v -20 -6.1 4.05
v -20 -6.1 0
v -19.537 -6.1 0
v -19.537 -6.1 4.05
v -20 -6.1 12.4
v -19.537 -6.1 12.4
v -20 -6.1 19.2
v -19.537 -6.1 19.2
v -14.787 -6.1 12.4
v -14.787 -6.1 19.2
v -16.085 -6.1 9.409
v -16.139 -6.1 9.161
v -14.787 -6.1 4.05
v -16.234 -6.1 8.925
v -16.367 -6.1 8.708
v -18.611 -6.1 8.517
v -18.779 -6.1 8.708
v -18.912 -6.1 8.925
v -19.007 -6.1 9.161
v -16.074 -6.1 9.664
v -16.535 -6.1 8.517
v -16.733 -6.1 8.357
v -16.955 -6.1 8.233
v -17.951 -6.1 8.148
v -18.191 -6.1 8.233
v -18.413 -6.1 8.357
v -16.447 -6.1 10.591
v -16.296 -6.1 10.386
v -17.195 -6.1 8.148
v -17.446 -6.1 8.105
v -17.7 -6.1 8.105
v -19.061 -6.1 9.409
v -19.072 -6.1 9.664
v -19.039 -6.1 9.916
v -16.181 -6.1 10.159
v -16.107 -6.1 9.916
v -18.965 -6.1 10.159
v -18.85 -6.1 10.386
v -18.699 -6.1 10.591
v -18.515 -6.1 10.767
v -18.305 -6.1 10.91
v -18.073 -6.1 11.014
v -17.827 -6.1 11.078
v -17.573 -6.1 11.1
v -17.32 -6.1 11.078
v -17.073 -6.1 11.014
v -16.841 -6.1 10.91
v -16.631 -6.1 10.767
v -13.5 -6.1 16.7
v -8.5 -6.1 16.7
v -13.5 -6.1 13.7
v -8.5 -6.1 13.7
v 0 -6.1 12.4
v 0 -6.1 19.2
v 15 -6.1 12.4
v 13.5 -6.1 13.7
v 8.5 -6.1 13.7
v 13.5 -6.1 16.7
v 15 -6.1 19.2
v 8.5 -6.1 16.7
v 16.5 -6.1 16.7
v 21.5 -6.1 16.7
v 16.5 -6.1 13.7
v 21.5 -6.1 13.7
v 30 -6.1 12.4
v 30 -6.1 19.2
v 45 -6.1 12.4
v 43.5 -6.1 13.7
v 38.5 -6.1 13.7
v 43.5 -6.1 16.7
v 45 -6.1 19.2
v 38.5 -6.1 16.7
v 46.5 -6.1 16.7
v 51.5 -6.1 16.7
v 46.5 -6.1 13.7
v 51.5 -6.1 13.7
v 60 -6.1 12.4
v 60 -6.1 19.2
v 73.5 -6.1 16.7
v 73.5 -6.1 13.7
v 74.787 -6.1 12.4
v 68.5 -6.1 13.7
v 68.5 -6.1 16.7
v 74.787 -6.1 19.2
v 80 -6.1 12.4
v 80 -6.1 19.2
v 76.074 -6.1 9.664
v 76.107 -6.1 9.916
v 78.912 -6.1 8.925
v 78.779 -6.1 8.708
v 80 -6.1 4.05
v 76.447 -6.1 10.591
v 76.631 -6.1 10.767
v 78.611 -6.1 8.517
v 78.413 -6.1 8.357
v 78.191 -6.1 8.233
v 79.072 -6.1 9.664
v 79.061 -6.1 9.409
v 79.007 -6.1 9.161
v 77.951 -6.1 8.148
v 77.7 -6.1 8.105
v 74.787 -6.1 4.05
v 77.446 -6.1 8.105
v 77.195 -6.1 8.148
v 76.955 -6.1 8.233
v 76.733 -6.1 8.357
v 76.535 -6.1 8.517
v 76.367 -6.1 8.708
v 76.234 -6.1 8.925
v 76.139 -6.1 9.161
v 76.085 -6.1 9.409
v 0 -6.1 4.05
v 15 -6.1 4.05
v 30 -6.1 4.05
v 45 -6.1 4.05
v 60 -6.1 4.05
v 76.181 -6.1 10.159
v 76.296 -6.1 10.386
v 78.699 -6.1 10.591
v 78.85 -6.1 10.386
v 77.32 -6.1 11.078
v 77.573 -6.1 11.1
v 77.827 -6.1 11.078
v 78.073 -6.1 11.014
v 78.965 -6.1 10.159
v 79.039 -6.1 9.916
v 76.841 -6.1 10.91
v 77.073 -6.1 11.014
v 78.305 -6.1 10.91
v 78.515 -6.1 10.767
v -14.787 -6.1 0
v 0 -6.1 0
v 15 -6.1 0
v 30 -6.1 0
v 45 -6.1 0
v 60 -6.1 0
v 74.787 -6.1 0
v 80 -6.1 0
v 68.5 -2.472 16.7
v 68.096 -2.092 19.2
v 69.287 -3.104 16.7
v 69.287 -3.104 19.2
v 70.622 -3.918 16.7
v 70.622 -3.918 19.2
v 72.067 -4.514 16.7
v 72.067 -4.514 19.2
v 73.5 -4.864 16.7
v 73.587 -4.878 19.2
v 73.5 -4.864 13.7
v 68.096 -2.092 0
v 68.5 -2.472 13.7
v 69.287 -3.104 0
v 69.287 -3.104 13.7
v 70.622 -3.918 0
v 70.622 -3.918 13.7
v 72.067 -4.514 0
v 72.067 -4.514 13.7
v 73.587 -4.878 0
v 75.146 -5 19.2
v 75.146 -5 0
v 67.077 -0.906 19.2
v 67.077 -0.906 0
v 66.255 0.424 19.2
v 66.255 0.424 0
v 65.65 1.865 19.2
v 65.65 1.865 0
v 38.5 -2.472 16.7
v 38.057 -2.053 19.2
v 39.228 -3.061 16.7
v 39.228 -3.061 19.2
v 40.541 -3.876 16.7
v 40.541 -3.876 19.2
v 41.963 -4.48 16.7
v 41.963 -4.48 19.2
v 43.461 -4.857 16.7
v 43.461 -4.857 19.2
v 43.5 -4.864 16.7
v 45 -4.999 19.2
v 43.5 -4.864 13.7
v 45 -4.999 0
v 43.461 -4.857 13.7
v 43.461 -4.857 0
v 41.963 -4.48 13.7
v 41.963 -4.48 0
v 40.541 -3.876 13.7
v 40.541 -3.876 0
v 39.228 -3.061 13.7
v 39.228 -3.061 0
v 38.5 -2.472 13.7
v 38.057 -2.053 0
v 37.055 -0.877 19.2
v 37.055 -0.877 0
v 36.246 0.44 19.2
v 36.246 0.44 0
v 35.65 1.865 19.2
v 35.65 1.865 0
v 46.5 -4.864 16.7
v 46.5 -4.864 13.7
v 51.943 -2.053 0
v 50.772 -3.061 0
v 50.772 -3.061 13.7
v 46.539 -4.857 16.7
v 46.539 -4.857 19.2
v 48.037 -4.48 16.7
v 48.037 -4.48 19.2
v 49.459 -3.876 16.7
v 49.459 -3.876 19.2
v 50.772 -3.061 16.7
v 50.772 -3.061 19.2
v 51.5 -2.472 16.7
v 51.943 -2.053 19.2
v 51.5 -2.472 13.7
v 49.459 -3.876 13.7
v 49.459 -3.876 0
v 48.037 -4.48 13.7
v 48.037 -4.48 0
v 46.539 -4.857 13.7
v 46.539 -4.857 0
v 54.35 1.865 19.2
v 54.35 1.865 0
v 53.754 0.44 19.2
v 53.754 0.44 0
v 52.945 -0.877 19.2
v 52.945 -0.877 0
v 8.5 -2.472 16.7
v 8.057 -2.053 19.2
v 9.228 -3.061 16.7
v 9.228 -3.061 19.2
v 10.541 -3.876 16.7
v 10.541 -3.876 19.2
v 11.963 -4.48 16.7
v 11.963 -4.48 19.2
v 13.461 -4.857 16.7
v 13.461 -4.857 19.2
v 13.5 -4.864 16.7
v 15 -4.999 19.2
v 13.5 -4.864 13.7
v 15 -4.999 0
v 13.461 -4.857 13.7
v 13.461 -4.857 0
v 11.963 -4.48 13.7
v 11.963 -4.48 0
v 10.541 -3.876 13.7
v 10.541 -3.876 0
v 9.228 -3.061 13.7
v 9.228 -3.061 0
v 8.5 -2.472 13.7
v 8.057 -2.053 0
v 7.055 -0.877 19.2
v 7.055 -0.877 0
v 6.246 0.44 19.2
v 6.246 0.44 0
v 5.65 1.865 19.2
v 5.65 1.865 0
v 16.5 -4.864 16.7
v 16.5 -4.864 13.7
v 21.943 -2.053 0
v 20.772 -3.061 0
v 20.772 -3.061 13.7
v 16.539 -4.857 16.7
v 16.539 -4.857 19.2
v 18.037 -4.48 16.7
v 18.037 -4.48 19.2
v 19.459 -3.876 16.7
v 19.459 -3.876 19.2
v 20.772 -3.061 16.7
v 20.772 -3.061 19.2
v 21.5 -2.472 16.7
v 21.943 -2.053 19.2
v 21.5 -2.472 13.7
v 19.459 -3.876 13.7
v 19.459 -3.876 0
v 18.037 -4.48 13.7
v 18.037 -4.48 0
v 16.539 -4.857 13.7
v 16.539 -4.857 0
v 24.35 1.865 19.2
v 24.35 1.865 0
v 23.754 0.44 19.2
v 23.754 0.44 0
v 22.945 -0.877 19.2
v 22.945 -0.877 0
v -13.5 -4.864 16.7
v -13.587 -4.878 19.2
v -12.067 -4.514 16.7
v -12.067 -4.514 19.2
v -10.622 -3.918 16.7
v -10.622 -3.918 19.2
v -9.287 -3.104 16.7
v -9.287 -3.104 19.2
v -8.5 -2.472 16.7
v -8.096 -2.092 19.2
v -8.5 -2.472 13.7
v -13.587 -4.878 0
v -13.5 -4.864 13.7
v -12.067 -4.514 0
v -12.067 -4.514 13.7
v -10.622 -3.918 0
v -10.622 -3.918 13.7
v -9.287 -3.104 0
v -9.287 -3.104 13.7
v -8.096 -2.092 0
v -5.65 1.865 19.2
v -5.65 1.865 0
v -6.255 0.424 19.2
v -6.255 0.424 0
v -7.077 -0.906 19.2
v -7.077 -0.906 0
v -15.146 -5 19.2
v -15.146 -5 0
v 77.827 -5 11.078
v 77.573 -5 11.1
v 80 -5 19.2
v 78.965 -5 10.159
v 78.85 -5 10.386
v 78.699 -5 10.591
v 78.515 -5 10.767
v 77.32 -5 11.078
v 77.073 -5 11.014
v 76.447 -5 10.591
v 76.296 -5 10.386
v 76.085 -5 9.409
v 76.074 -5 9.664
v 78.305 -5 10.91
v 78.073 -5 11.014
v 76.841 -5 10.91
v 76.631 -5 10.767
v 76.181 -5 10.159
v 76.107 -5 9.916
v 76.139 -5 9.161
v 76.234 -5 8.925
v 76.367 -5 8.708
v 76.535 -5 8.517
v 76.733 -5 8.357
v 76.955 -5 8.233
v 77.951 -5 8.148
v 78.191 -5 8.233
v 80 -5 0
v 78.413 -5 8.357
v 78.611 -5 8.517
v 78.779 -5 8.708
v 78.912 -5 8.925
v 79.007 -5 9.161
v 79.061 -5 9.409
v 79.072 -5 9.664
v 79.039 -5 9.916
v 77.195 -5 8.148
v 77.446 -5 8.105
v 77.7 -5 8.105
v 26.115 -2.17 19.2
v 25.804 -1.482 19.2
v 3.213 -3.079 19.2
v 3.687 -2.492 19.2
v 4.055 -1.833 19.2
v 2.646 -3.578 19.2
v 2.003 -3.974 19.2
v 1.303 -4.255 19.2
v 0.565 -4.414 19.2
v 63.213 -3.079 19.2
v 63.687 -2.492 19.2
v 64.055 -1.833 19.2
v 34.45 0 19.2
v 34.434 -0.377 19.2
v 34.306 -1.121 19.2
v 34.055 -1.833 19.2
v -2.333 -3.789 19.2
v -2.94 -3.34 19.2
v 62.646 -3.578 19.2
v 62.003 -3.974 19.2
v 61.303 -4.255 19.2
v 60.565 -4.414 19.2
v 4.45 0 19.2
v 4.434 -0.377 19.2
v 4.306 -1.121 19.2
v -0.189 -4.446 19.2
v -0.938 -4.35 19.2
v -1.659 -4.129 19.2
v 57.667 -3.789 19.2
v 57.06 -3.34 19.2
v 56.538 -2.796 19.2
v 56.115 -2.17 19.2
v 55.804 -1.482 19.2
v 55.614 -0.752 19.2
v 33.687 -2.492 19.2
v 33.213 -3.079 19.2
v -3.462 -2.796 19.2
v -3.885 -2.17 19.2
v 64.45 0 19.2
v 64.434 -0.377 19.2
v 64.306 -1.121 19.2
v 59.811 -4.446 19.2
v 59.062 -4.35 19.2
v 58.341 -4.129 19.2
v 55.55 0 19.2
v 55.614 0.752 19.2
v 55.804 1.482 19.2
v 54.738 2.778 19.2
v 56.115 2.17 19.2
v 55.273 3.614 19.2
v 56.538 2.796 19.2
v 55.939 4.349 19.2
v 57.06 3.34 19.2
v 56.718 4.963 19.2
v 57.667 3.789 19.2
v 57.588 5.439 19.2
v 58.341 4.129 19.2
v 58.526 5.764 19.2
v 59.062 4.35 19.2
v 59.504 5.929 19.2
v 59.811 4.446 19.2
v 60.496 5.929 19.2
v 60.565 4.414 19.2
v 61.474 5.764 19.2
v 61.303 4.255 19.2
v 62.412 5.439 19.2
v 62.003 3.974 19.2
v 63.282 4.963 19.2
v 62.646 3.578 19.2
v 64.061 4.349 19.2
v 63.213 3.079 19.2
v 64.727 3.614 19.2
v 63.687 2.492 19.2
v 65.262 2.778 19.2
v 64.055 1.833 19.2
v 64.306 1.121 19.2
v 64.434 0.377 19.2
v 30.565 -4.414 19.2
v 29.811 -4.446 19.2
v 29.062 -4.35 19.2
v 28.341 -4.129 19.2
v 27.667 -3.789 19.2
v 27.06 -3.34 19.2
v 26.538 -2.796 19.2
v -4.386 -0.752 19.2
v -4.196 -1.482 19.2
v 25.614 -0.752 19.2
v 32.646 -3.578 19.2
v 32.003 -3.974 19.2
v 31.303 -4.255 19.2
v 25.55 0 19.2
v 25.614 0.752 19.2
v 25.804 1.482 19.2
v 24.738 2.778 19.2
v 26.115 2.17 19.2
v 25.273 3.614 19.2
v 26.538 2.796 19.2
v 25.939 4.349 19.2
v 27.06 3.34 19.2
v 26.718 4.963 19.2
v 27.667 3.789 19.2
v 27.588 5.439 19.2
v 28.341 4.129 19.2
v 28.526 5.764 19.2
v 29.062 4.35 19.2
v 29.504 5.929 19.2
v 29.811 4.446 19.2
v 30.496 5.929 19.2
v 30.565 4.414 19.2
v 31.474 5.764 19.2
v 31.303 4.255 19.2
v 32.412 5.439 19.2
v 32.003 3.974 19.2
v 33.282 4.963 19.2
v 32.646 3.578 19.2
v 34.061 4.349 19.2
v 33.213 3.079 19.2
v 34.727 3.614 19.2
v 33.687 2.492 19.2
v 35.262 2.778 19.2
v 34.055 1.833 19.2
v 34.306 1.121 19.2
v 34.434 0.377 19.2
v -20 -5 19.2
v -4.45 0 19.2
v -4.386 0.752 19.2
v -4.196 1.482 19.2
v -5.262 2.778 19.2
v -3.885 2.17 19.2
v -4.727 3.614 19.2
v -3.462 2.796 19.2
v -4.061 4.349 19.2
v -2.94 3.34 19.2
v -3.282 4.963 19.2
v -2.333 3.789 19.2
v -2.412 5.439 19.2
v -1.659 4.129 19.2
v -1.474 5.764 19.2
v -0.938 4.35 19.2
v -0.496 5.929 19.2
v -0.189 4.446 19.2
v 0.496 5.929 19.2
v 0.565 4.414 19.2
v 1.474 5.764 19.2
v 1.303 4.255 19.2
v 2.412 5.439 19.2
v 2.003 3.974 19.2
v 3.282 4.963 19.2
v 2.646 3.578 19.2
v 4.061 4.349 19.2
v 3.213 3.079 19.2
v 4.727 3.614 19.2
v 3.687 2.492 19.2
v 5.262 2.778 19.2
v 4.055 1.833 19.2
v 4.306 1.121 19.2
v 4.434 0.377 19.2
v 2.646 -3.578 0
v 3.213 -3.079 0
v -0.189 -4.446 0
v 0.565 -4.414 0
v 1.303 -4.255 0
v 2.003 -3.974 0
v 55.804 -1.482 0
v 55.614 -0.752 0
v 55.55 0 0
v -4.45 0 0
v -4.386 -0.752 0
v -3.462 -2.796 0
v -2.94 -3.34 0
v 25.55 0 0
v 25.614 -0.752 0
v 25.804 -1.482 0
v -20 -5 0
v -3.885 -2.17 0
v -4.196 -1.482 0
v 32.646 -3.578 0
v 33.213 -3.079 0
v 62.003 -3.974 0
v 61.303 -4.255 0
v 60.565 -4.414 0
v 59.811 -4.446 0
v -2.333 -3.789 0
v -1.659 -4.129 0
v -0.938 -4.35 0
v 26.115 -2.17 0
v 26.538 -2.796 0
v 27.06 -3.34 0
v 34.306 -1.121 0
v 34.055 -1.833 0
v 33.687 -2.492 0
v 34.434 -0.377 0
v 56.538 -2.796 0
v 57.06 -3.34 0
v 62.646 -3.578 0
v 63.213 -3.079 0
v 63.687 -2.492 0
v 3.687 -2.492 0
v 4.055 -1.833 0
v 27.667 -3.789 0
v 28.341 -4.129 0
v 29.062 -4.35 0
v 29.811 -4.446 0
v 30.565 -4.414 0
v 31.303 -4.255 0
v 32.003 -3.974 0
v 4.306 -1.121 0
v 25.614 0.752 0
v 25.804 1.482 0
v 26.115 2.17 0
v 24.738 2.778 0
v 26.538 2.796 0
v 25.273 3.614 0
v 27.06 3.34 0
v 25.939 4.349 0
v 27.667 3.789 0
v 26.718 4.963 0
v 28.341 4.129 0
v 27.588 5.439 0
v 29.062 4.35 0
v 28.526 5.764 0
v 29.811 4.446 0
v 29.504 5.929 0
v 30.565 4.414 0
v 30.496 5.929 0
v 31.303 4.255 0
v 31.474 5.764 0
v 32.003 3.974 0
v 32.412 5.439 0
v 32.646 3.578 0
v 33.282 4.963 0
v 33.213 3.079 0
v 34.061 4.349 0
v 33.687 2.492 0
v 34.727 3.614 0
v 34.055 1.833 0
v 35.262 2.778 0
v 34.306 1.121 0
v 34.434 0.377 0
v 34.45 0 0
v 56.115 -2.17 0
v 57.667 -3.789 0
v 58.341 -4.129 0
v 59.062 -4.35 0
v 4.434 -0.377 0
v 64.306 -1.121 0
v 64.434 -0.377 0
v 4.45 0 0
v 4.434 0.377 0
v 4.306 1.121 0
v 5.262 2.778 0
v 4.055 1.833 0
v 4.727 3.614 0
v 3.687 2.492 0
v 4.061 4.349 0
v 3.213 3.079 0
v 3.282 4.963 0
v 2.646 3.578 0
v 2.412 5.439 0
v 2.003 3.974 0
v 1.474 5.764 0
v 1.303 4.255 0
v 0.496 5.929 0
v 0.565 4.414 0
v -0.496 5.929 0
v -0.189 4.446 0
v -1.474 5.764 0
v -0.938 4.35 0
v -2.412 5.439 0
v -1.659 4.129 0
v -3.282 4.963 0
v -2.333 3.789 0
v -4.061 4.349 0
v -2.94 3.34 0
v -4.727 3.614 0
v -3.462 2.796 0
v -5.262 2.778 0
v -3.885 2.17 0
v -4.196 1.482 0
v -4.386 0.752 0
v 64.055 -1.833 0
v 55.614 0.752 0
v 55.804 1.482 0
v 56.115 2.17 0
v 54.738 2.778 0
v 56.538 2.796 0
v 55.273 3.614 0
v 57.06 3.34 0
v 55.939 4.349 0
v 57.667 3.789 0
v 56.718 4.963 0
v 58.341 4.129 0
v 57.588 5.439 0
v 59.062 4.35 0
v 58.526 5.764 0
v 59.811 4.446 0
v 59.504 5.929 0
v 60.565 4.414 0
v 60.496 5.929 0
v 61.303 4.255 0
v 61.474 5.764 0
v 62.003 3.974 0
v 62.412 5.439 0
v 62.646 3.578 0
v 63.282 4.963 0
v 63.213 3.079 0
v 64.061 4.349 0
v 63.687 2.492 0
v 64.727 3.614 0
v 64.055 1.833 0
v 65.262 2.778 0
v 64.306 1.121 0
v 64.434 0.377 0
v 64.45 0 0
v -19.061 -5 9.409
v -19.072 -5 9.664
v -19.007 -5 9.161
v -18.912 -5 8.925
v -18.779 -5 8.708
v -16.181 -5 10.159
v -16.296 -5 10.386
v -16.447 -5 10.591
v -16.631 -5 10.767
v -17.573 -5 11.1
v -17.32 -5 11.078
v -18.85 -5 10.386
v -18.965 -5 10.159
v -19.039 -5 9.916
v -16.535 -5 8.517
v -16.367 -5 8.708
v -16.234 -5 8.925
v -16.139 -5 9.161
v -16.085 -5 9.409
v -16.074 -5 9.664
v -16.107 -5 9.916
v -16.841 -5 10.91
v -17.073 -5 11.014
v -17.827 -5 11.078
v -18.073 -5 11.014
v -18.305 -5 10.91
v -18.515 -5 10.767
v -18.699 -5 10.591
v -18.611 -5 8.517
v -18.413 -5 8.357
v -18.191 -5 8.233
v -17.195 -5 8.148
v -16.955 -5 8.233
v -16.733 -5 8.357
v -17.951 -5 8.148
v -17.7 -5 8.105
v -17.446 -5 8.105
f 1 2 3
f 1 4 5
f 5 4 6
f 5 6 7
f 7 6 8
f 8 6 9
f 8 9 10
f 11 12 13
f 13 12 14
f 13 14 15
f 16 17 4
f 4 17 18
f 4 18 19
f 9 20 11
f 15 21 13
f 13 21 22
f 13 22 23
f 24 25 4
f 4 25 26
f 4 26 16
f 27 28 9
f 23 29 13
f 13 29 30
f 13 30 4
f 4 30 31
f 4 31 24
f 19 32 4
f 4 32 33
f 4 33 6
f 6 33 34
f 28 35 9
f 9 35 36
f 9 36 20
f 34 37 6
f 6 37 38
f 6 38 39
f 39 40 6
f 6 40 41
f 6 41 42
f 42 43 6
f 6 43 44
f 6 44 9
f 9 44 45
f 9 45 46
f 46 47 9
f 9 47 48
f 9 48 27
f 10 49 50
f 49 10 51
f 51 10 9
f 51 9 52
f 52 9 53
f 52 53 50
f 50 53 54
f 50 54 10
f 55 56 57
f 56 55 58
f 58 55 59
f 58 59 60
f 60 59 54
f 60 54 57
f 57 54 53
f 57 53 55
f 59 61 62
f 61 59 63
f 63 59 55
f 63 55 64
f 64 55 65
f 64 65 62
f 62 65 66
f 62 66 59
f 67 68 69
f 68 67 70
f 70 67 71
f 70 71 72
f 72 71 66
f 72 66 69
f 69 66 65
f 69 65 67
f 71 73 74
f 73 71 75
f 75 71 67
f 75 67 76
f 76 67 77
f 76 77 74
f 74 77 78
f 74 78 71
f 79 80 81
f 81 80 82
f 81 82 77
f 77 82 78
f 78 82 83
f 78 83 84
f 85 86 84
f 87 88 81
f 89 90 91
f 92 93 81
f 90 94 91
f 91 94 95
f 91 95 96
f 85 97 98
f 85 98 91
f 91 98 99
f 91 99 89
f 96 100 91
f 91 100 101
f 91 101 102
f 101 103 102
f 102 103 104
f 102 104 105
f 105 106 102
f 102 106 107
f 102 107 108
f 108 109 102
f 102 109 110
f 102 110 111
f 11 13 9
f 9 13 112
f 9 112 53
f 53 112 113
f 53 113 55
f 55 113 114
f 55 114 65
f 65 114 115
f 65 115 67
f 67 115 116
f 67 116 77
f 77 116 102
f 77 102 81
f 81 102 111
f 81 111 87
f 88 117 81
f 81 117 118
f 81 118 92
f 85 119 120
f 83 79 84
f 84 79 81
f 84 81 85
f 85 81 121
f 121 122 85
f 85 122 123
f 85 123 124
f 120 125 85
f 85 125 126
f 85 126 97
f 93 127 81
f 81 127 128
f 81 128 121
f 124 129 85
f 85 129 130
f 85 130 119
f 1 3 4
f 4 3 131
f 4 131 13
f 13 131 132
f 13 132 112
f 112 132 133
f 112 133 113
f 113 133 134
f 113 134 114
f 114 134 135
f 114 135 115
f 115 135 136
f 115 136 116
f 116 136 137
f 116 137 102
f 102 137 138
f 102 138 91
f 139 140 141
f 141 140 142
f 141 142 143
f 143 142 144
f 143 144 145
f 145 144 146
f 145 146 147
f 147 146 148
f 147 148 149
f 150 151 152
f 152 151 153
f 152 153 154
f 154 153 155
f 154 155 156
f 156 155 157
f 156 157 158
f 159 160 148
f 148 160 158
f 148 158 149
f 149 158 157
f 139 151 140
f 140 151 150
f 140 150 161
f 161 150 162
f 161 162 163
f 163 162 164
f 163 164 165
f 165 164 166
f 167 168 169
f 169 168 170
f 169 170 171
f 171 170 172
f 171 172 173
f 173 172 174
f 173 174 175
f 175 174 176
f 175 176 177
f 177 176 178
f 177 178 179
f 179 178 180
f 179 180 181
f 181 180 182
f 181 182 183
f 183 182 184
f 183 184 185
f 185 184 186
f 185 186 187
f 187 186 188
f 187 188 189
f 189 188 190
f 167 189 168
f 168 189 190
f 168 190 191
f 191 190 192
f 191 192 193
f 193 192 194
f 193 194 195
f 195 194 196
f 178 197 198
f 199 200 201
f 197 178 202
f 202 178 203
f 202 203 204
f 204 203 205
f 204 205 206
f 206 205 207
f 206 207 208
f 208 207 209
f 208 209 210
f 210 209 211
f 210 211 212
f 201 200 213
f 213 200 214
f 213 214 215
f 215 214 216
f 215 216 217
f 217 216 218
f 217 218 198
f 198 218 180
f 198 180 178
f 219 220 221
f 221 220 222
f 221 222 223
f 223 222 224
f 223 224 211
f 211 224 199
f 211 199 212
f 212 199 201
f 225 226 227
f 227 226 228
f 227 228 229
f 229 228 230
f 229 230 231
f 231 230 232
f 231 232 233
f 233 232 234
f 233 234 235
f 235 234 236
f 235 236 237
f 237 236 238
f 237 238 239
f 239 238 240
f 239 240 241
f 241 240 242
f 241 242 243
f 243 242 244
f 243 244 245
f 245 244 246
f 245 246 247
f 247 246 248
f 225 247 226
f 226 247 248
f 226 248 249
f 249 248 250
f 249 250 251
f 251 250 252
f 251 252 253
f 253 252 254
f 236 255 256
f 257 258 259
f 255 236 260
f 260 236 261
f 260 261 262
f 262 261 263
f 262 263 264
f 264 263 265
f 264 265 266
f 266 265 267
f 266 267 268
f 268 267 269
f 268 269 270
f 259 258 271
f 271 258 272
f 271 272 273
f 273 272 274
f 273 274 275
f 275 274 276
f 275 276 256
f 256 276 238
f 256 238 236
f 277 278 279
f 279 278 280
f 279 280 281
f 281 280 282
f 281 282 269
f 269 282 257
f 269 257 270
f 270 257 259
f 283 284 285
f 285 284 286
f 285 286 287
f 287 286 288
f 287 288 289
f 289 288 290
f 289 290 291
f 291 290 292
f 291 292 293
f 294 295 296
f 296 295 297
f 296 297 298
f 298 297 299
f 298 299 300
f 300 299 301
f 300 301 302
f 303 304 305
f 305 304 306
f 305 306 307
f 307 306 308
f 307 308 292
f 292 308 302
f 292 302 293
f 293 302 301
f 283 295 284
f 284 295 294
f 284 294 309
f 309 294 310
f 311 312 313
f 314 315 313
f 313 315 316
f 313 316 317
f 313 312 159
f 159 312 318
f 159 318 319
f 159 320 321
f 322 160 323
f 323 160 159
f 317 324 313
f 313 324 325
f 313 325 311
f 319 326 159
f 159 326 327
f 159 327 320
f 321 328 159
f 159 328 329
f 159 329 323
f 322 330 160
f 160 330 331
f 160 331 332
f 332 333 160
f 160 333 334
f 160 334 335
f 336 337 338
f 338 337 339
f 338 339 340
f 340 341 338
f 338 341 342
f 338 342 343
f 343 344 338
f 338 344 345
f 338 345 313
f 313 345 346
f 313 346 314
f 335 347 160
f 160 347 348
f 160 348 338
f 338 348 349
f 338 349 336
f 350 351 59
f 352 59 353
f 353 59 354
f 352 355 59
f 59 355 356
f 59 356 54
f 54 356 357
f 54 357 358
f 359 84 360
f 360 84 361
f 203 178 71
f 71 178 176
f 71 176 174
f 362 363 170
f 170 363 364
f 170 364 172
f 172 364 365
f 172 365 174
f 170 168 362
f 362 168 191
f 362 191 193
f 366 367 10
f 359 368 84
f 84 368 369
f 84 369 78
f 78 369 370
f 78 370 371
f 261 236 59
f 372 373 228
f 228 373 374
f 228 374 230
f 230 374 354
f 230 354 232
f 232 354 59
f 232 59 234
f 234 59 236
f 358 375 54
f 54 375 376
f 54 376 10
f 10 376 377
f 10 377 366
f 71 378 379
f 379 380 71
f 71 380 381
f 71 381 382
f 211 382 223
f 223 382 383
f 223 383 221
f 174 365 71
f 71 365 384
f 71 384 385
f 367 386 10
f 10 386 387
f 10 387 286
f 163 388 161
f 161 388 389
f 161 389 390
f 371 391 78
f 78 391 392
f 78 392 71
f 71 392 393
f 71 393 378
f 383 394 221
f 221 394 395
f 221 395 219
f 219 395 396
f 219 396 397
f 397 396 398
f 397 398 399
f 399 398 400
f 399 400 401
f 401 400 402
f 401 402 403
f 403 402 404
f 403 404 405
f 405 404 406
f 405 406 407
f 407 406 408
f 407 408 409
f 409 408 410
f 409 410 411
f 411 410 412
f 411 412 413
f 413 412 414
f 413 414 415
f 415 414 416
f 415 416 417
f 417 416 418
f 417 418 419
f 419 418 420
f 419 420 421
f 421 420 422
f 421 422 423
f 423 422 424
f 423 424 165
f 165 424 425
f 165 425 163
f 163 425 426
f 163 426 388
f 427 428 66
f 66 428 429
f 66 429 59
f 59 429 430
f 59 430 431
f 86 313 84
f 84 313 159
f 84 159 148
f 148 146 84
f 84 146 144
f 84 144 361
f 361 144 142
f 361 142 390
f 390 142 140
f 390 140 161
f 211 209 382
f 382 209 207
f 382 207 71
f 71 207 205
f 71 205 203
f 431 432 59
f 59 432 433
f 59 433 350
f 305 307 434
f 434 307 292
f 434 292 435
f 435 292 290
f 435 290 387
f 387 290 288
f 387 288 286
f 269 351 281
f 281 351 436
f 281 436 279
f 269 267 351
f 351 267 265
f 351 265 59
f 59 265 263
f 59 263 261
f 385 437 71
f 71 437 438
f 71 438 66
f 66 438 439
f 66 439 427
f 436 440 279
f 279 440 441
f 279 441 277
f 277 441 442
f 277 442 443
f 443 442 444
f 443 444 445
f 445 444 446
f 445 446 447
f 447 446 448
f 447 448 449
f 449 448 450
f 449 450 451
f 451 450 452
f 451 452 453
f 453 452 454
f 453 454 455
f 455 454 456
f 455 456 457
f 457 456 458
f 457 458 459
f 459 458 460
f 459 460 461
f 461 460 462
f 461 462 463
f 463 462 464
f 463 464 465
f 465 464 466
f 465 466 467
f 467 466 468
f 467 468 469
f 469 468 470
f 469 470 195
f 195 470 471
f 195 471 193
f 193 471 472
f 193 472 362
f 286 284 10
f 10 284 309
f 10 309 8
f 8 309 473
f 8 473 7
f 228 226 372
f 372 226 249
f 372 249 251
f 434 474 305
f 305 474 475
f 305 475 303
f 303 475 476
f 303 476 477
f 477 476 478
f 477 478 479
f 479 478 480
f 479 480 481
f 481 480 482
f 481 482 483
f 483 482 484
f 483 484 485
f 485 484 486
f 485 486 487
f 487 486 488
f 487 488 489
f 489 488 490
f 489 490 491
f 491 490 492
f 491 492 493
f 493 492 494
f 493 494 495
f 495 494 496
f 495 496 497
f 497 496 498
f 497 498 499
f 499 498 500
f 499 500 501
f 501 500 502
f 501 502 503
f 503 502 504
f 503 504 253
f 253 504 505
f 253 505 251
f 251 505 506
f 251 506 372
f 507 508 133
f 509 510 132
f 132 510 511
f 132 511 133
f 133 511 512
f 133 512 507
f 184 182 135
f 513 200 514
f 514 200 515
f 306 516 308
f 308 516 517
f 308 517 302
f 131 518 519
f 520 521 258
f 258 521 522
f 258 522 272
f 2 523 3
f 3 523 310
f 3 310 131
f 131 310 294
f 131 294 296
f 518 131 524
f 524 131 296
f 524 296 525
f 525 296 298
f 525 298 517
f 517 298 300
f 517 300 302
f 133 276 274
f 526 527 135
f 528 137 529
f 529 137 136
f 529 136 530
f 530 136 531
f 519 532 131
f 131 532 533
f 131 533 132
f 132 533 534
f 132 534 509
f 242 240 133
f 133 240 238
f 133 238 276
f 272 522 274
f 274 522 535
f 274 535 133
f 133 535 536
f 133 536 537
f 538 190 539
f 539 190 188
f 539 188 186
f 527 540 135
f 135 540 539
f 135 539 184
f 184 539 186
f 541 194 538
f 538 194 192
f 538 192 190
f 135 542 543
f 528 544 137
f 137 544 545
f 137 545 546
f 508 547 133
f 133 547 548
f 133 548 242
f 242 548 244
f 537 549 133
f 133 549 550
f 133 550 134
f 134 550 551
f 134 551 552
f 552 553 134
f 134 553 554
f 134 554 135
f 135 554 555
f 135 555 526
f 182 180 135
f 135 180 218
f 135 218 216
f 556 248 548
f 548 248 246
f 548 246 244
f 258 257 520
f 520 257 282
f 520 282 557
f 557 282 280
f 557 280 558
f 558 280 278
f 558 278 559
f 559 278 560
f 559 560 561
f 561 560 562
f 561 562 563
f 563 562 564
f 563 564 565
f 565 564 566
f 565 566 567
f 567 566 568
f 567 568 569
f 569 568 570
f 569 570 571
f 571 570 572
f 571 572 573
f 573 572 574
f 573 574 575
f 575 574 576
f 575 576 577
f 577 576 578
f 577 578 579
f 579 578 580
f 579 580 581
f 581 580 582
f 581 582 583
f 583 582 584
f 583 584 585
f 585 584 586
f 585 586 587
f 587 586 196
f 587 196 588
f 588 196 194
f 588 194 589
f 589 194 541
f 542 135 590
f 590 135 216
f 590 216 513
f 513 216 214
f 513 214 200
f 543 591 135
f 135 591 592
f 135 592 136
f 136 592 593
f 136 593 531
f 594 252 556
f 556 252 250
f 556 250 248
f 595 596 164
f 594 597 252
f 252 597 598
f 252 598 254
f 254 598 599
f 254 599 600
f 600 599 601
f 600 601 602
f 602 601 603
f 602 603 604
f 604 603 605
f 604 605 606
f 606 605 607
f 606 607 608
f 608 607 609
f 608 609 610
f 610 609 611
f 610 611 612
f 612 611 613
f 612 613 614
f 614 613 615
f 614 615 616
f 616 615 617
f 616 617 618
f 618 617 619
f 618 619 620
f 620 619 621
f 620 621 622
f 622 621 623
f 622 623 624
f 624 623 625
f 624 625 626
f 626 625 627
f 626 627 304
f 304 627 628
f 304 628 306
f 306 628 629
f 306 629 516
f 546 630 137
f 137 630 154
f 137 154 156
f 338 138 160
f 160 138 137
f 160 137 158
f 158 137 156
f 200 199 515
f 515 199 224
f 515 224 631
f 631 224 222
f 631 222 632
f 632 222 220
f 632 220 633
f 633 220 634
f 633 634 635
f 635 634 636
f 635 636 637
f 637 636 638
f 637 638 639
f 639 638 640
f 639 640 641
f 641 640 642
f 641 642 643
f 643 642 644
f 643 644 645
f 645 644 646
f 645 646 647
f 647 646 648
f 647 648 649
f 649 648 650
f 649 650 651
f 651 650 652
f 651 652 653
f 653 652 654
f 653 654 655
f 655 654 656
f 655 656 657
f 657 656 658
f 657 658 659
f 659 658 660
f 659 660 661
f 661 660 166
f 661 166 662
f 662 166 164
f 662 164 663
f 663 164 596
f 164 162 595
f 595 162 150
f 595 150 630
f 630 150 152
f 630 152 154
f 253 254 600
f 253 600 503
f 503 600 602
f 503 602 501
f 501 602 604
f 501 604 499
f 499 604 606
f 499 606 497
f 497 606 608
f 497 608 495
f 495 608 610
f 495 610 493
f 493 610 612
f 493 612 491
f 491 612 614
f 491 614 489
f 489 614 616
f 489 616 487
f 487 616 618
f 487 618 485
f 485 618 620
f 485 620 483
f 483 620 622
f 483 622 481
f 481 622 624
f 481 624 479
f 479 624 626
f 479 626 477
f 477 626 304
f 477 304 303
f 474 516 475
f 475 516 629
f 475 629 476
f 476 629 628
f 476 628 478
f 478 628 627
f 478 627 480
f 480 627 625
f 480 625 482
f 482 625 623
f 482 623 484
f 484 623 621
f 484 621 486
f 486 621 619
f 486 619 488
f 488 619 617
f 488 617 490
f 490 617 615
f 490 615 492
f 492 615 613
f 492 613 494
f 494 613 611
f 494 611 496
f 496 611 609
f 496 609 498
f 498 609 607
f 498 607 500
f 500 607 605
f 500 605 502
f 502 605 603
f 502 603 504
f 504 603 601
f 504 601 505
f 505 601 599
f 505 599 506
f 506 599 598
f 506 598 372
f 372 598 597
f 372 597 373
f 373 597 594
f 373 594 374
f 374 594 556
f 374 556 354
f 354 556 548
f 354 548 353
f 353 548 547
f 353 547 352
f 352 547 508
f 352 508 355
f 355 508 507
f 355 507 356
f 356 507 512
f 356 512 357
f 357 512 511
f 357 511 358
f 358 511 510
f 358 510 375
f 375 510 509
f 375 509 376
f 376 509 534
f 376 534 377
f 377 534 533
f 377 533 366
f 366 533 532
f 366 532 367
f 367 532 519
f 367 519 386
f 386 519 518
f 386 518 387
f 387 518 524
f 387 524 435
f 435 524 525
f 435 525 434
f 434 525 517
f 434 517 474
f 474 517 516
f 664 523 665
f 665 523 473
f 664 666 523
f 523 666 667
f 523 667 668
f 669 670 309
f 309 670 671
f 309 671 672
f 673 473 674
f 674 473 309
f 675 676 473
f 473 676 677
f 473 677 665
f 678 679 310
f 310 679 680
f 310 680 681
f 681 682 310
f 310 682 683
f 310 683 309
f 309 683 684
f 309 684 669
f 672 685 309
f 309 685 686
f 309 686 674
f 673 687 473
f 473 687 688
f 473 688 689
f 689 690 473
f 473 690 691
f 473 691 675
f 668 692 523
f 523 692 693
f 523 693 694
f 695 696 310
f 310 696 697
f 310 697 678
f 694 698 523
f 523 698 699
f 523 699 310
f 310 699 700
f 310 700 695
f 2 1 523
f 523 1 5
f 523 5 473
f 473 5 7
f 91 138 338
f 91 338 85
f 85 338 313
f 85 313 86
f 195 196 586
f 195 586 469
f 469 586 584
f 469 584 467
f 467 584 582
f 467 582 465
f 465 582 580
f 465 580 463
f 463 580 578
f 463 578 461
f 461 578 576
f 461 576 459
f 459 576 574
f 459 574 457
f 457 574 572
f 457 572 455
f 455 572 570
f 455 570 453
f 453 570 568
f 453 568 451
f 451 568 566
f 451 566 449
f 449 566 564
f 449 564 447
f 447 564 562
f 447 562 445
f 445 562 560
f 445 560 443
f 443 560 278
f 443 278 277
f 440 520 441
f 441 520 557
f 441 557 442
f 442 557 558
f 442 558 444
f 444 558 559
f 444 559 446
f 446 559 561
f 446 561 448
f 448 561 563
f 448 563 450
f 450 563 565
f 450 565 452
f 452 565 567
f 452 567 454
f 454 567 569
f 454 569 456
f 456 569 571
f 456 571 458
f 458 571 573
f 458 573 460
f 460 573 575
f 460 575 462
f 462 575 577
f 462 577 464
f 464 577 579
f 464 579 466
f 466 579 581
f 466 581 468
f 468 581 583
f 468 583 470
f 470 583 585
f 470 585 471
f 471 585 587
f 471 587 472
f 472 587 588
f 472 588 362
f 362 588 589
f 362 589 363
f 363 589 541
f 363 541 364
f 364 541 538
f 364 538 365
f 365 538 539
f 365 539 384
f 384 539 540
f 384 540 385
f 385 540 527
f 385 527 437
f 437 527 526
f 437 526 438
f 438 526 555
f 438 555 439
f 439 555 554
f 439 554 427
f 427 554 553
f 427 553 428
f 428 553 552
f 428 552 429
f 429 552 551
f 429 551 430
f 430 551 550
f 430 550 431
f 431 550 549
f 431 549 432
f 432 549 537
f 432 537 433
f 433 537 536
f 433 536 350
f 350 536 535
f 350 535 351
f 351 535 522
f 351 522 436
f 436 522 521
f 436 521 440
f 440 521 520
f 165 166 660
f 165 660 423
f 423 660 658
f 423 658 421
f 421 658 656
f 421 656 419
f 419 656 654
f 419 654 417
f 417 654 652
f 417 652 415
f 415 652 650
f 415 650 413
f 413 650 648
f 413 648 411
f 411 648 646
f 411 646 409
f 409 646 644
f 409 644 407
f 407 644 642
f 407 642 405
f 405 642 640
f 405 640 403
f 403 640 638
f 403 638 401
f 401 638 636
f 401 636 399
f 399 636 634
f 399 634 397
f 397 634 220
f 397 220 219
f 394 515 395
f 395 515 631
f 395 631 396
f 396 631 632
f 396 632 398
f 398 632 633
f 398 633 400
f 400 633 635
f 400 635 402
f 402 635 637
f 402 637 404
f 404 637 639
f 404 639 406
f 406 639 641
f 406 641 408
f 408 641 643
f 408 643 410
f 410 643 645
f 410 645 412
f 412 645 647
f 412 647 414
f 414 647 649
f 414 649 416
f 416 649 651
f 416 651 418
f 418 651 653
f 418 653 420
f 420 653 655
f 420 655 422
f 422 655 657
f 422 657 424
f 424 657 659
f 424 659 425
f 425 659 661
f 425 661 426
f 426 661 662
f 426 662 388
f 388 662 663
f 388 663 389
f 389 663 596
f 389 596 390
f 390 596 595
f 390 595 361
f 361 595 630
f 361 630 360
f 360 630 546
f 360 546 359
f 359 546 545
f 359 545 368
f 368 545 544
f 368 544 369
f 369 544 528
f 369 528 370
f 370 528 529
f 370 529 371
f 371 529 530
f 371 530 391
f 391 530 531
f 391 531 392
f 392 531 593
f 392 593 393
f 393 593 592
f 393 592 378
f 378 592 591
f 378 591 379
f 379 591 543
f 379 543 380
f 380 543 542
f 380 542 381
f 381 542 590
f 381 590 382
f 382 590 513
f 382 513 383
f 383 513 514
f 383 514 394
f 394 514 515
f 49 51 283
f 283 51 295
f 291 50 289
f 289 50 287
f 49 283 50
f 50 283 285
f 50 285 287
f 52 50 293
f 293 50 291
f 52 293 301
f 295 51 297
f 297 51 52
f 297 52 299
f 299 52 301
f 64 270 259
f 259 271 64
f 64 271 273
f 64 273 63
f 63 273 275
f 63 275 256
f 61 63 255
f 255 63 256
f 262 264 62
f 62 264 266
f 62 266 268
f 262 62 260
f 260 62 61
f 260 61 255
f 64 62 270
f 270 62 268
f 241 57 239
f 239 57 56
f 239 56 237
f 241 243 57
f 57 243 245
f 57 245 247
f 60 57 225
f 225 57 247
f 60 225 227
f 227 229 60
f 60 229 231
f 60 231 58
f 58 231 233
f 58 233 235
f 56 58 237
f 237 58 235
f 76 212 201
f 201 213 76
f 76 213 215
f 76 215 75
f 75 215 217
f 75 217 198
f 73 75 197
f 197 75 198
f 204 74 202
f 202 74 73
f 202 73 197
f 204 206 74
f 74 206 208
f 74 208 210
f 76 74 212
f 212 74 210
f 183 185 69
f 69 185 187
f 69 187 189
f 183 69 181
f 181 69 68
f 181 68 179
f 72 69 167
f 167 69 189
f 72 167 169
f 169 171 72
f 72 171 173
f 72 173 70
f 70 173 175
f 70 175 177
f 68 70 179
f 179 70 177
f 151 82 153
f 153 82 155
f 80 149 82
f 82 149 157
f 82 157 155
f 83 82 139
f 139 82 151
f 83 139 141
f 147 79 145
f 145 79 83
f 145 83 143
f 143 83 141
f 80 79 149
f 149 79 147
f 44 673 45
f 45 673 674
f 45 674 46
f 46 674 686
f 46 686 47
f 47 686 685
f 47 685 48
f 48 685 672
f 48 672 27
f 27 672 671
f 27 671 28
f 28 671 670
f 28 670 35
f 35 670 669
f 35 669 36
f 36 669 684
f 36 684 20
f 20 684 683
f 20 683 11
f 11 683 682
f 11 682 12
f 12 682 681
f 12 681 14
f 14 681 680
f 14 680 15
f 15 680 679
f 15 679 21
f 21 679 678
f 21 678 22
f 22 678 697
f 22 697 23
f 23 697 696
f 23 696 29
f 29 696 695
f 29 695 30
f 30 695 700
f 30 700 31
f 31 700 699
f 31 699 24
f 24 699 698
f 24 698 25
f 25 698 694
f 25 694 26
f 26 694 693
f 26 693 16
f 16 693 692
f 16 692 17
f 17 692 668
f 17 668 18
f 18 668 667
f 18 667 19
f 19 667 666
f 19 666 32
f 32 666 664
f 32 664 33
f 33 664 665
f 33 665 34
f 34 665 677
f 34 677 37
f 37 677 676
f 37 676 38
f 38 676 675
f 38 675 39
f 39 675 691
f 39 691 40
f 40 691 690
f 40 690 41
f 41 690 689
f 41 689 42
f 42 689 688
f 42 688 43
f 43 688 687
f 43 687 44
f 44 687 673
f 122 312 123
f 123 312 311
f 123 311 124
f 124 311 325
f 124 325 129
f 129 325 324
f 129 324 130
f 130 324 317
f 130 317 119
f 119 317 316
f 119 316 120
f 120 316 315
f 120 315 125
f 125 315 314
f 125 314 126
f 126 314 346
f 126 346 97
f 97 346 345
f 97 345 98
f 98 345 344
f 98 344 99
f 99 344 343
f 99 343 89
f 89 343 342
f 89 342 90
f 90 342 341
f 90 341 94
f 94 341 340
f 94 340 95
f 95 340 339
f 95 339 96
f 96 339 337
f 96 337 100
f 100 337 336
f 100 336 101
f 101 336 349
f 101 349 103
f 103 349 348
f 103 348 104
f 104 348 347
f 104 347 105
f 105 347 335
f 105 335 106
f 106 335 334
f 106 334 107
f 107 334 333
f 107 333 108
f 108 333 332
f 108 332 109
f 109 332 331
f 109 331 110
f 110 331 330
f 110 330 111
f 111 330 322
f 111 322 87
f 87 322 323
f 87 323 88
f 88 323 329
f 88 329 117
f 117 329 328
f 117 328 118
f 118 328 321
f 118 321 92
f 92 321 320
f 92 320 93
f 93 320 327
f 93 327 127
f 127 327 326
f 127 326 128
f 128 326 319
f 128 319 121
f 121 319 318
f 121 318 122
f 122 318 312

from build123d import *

# Parameters (mm, degrees)
ESQUISSE1_R                  = 5.95
ESQUISSE1_R_2                = 4.45
EXTRU_MINCE1_DEPTH           = 19.2
EXTRU_MINCE1_2_DEPTH         = 19.2
EXTRU_MINCE1_3_DEPTH         = 19.2
ESQUISSE3_W                  = 20
ESQUISSE3_H                  = 19.2
ESQUISSE3_W_2                = 40
BOSS_EXTRU_1_DEPTH           = 1.1
CONG_1_R                     = 10
ENL_V_MAT_EXTRU_1_DEPTH      = 83.99724393
ENL_V_MAT_EXTRU_1_DEPTH_BACK = 83.99724393
ESQUISSE4_W                  = 5
ESQUISSE4_H                  = 3
ESQUISSE5_R                  = 1.5
ENL_V_MAT_EXTRU_4_DEPTH      = 83.99724393


with BuildPart() as part:
    # Esquisse1 → Extru.-Mince1 (new body)
    with BuildSketch(Plane.XY):
        Circle(ESQUISSE1_R)
        Circle(ESQUISSE1_R_2, mode=Mode.SUBTRACT)
    extrude(amount=EXTRU_MINCE1_DEPTH)



with BuildPart() as body_2:
    # Esquisse1 → Extru.-Mince1 2 (new body)
    with BuildSketch(Plane.XY):
        with Locations((30, 0)):
            Circle(ESQUISSE1_R)
        with Locations((30, 0)):
            Circle(ESQUISSE1_R_2, mode=Mode.SUBTRACT)
    extrude(amount=EXTRU_MINCE1_2_DEPTH)


with BuildPart() as body_3:
    # Esquisse1 → Extru.-Mince1 3 (new body)
    with BuildSketch(Plane.XY):
        with Locations((60, 0)):
            Circle(ESQUISSE1_R)
        with Locations((60, 0)):
            Circle(ESQUISSE1_R_2, mode=Mode.SUBTRACT)
    extrude(amount=EXTRU_MINCE1_3_DEPTH)


with BuildPart() as part_1:
    add(part.part)

    add(body_2.part)  # Boss.-Extru.1 merges body 2

    add(body_3.part)  # Boss.-Extru.1 merges body 3
    # Esquisse3 → Boss.-Extru.1 (add)
    with BuildSketch(Plane(origin=(0, -5, 0), x_dir=(1, 0, 0), z_dir=(0, 1, 0))):
        with Locations((-10, -9.6)):
            Rectangle(ESQUISSE3_W, ESQUISSE3_H)
        with Locations((10, -9.6)):
            Rectangle(ESQUISSE3_W, ESQUISSE3_H)
        with Locations((30, -9.6)):
            Rectangle(ESQUISSE3_W, ESQUISSE3_H)
        with Locations((60, -9.6)):
            Rectangle(ESQUISSE3_W_2, ESQUISSE3_H)
    extrude(amount=-BOSS_EXTRU_1_DEPTH)

    # Congé1
    # the kernel refuses this fillet: 10 mm, written as the material it adds along each edge
    with BuildSketch(Plane(origin=(-3.225290685, -5, 19.2), x_dir=(-0.33303824301553114, 0.9429133198174305, 0), z_dir=(0, 0, -1)), Plane(origin=(26.774709315, -5, 19.2), x_dir=(-0.33303824301553103, 0.9429133198174305, 0), z_dir=(0, 0, -1)), Plane(origin=(56.774709315, -5, 19.2), x_dir=(-0.3330382430155325, 0.9429133198174301, 0), z_dir=(0, 0, -1))) as cong_1_piece_1:
        with BuildLine():
            CenterArc((13.399198301, -7.90985002), CONG_1_R, 127.722343038, 71.730945551)
            Line((3.970065103, -11.24023245), (0, 0))
            ThreePointArc((0, 0), (3.640421456, -1.243639238), (7.280842913, 0))
        make_face()
    extrude(amount=19.2)
    with BuildSketch(Plane(origin=(3.225290685, -5, 19.2), x_dir=(0.33303824301553153, 0.9429133198174304, 0), z_dir=(0, 0, -1))) as cong_1_piece_2:
        with BuildLine():
            CenterArc((13.399198301, 7.90985002), CONG_1_R, 160.546711411, 71.730945551)
            Line((3.970065103, 11.24023245), (0, 0))
            ThreePointArc((0, 0), (3.640421456, 1.243639238), (7.280842913, 0))
        make_face()
    extrude(amount=19.2)
    with BuildSketch(Plane(origin=(33.225290685, -5, 19.2), x_dir=(1, 0, 0), z_dir=(0, 0, -1)), Plane(origin=(63.225290685, -5, 19.2), x_dir=(1, 0, 0), z_dir=(0, 0, -1))) as cong_1_piece_3:
        with BuildLine():
            CenterArc((11.920748402, -10), CONG_1_R, 90, 71.730945551)
            ThreePointArc((2.424799131, -6.865203762), (2.385043568, -3.018422454), (0, 0))
            Line((0, 0), (11.920748402, 0))
        make_face()
    extrude(amount=19.2)

    # Esquisse4 → Enlèv. mat.-Extru.1 (cut, two sides: drawn at the far end of the back side and taken through both)
    with BuildSketch(Plane(origin=(0, -5, 0), x_dir=(1, 0, 0), z_dir=(0, 1, 0)).offset(-ENL_V_MAT_EXTRU_1_DEPTH_BACK)):
        with Locations((-11, -15.2)):
            Rectangle(ESQUISSE4_W, ESQUISSE4_H)
        with Locations((11, -15.2)):
            Rectangle(ESQUISSE4_W, ESQUISSE4_H)
        with Locations((19, -15.2)):
            Rectangle(ESQUISSE4_W, ESQUISSE4_H)
        with Locations((41, -15.2)):
            Rectangle(ESQUISSE4_W, ESQUISSE4_H)
        with Locations((49, -15.2)):
            Rectangle(ESQUISSE4_W, ESQUISSE4_H)
        with Locations((71, -15.2)):
            Rectangle(ESQUISSE4_W, ESQUISSE4_H)
    extrude(amount=ENL_V_MAT_EXTRU_1_DEPTH + ENL_V_MAT_EXTRU_1_DEPTH_BACK, mode=Mode.SUBTRACT)

    # Esquisse5 → Enlèv. mat.-Extru.4 (cut, through all)
    with BuildSketch(Plane(origin=(0, -5, 0), x_dir=(1, 0, 0), z_dir=(0, 1, 0))):
        with BuildLine():
            ThreePointArc((79.073019543, -9.6), (78.494574401, -8.416472796), (77.205370686, -8.145753007))
            Line((77.205370686, -8.145753007), (77.940668401, -11.054246993))
            ThreePointArc((77.940668401, -11.054246993), (78.756546747, -10.521554858), (79.073019543, -9.6))
        make_face()
        with BuildLine():
            Line((77.940668401, -11.054246993), (77.205370686, -8.145753007))
            ThreePointArc((77.205370686, -8.145753007), (76.11877255, -9.967648858), (77.940668401, -11.054246993))
        make_face()
        with Locations(Location((-17.573019543, -9.6, 0), (0, 0, 270))):
            Circle(ESQUISSE5_R)
    extrude(amount=-ENL_V_MAT_EXTRU_4_DEPTH, mode=Mode.SUBTRACT)


solid = part_1.part
